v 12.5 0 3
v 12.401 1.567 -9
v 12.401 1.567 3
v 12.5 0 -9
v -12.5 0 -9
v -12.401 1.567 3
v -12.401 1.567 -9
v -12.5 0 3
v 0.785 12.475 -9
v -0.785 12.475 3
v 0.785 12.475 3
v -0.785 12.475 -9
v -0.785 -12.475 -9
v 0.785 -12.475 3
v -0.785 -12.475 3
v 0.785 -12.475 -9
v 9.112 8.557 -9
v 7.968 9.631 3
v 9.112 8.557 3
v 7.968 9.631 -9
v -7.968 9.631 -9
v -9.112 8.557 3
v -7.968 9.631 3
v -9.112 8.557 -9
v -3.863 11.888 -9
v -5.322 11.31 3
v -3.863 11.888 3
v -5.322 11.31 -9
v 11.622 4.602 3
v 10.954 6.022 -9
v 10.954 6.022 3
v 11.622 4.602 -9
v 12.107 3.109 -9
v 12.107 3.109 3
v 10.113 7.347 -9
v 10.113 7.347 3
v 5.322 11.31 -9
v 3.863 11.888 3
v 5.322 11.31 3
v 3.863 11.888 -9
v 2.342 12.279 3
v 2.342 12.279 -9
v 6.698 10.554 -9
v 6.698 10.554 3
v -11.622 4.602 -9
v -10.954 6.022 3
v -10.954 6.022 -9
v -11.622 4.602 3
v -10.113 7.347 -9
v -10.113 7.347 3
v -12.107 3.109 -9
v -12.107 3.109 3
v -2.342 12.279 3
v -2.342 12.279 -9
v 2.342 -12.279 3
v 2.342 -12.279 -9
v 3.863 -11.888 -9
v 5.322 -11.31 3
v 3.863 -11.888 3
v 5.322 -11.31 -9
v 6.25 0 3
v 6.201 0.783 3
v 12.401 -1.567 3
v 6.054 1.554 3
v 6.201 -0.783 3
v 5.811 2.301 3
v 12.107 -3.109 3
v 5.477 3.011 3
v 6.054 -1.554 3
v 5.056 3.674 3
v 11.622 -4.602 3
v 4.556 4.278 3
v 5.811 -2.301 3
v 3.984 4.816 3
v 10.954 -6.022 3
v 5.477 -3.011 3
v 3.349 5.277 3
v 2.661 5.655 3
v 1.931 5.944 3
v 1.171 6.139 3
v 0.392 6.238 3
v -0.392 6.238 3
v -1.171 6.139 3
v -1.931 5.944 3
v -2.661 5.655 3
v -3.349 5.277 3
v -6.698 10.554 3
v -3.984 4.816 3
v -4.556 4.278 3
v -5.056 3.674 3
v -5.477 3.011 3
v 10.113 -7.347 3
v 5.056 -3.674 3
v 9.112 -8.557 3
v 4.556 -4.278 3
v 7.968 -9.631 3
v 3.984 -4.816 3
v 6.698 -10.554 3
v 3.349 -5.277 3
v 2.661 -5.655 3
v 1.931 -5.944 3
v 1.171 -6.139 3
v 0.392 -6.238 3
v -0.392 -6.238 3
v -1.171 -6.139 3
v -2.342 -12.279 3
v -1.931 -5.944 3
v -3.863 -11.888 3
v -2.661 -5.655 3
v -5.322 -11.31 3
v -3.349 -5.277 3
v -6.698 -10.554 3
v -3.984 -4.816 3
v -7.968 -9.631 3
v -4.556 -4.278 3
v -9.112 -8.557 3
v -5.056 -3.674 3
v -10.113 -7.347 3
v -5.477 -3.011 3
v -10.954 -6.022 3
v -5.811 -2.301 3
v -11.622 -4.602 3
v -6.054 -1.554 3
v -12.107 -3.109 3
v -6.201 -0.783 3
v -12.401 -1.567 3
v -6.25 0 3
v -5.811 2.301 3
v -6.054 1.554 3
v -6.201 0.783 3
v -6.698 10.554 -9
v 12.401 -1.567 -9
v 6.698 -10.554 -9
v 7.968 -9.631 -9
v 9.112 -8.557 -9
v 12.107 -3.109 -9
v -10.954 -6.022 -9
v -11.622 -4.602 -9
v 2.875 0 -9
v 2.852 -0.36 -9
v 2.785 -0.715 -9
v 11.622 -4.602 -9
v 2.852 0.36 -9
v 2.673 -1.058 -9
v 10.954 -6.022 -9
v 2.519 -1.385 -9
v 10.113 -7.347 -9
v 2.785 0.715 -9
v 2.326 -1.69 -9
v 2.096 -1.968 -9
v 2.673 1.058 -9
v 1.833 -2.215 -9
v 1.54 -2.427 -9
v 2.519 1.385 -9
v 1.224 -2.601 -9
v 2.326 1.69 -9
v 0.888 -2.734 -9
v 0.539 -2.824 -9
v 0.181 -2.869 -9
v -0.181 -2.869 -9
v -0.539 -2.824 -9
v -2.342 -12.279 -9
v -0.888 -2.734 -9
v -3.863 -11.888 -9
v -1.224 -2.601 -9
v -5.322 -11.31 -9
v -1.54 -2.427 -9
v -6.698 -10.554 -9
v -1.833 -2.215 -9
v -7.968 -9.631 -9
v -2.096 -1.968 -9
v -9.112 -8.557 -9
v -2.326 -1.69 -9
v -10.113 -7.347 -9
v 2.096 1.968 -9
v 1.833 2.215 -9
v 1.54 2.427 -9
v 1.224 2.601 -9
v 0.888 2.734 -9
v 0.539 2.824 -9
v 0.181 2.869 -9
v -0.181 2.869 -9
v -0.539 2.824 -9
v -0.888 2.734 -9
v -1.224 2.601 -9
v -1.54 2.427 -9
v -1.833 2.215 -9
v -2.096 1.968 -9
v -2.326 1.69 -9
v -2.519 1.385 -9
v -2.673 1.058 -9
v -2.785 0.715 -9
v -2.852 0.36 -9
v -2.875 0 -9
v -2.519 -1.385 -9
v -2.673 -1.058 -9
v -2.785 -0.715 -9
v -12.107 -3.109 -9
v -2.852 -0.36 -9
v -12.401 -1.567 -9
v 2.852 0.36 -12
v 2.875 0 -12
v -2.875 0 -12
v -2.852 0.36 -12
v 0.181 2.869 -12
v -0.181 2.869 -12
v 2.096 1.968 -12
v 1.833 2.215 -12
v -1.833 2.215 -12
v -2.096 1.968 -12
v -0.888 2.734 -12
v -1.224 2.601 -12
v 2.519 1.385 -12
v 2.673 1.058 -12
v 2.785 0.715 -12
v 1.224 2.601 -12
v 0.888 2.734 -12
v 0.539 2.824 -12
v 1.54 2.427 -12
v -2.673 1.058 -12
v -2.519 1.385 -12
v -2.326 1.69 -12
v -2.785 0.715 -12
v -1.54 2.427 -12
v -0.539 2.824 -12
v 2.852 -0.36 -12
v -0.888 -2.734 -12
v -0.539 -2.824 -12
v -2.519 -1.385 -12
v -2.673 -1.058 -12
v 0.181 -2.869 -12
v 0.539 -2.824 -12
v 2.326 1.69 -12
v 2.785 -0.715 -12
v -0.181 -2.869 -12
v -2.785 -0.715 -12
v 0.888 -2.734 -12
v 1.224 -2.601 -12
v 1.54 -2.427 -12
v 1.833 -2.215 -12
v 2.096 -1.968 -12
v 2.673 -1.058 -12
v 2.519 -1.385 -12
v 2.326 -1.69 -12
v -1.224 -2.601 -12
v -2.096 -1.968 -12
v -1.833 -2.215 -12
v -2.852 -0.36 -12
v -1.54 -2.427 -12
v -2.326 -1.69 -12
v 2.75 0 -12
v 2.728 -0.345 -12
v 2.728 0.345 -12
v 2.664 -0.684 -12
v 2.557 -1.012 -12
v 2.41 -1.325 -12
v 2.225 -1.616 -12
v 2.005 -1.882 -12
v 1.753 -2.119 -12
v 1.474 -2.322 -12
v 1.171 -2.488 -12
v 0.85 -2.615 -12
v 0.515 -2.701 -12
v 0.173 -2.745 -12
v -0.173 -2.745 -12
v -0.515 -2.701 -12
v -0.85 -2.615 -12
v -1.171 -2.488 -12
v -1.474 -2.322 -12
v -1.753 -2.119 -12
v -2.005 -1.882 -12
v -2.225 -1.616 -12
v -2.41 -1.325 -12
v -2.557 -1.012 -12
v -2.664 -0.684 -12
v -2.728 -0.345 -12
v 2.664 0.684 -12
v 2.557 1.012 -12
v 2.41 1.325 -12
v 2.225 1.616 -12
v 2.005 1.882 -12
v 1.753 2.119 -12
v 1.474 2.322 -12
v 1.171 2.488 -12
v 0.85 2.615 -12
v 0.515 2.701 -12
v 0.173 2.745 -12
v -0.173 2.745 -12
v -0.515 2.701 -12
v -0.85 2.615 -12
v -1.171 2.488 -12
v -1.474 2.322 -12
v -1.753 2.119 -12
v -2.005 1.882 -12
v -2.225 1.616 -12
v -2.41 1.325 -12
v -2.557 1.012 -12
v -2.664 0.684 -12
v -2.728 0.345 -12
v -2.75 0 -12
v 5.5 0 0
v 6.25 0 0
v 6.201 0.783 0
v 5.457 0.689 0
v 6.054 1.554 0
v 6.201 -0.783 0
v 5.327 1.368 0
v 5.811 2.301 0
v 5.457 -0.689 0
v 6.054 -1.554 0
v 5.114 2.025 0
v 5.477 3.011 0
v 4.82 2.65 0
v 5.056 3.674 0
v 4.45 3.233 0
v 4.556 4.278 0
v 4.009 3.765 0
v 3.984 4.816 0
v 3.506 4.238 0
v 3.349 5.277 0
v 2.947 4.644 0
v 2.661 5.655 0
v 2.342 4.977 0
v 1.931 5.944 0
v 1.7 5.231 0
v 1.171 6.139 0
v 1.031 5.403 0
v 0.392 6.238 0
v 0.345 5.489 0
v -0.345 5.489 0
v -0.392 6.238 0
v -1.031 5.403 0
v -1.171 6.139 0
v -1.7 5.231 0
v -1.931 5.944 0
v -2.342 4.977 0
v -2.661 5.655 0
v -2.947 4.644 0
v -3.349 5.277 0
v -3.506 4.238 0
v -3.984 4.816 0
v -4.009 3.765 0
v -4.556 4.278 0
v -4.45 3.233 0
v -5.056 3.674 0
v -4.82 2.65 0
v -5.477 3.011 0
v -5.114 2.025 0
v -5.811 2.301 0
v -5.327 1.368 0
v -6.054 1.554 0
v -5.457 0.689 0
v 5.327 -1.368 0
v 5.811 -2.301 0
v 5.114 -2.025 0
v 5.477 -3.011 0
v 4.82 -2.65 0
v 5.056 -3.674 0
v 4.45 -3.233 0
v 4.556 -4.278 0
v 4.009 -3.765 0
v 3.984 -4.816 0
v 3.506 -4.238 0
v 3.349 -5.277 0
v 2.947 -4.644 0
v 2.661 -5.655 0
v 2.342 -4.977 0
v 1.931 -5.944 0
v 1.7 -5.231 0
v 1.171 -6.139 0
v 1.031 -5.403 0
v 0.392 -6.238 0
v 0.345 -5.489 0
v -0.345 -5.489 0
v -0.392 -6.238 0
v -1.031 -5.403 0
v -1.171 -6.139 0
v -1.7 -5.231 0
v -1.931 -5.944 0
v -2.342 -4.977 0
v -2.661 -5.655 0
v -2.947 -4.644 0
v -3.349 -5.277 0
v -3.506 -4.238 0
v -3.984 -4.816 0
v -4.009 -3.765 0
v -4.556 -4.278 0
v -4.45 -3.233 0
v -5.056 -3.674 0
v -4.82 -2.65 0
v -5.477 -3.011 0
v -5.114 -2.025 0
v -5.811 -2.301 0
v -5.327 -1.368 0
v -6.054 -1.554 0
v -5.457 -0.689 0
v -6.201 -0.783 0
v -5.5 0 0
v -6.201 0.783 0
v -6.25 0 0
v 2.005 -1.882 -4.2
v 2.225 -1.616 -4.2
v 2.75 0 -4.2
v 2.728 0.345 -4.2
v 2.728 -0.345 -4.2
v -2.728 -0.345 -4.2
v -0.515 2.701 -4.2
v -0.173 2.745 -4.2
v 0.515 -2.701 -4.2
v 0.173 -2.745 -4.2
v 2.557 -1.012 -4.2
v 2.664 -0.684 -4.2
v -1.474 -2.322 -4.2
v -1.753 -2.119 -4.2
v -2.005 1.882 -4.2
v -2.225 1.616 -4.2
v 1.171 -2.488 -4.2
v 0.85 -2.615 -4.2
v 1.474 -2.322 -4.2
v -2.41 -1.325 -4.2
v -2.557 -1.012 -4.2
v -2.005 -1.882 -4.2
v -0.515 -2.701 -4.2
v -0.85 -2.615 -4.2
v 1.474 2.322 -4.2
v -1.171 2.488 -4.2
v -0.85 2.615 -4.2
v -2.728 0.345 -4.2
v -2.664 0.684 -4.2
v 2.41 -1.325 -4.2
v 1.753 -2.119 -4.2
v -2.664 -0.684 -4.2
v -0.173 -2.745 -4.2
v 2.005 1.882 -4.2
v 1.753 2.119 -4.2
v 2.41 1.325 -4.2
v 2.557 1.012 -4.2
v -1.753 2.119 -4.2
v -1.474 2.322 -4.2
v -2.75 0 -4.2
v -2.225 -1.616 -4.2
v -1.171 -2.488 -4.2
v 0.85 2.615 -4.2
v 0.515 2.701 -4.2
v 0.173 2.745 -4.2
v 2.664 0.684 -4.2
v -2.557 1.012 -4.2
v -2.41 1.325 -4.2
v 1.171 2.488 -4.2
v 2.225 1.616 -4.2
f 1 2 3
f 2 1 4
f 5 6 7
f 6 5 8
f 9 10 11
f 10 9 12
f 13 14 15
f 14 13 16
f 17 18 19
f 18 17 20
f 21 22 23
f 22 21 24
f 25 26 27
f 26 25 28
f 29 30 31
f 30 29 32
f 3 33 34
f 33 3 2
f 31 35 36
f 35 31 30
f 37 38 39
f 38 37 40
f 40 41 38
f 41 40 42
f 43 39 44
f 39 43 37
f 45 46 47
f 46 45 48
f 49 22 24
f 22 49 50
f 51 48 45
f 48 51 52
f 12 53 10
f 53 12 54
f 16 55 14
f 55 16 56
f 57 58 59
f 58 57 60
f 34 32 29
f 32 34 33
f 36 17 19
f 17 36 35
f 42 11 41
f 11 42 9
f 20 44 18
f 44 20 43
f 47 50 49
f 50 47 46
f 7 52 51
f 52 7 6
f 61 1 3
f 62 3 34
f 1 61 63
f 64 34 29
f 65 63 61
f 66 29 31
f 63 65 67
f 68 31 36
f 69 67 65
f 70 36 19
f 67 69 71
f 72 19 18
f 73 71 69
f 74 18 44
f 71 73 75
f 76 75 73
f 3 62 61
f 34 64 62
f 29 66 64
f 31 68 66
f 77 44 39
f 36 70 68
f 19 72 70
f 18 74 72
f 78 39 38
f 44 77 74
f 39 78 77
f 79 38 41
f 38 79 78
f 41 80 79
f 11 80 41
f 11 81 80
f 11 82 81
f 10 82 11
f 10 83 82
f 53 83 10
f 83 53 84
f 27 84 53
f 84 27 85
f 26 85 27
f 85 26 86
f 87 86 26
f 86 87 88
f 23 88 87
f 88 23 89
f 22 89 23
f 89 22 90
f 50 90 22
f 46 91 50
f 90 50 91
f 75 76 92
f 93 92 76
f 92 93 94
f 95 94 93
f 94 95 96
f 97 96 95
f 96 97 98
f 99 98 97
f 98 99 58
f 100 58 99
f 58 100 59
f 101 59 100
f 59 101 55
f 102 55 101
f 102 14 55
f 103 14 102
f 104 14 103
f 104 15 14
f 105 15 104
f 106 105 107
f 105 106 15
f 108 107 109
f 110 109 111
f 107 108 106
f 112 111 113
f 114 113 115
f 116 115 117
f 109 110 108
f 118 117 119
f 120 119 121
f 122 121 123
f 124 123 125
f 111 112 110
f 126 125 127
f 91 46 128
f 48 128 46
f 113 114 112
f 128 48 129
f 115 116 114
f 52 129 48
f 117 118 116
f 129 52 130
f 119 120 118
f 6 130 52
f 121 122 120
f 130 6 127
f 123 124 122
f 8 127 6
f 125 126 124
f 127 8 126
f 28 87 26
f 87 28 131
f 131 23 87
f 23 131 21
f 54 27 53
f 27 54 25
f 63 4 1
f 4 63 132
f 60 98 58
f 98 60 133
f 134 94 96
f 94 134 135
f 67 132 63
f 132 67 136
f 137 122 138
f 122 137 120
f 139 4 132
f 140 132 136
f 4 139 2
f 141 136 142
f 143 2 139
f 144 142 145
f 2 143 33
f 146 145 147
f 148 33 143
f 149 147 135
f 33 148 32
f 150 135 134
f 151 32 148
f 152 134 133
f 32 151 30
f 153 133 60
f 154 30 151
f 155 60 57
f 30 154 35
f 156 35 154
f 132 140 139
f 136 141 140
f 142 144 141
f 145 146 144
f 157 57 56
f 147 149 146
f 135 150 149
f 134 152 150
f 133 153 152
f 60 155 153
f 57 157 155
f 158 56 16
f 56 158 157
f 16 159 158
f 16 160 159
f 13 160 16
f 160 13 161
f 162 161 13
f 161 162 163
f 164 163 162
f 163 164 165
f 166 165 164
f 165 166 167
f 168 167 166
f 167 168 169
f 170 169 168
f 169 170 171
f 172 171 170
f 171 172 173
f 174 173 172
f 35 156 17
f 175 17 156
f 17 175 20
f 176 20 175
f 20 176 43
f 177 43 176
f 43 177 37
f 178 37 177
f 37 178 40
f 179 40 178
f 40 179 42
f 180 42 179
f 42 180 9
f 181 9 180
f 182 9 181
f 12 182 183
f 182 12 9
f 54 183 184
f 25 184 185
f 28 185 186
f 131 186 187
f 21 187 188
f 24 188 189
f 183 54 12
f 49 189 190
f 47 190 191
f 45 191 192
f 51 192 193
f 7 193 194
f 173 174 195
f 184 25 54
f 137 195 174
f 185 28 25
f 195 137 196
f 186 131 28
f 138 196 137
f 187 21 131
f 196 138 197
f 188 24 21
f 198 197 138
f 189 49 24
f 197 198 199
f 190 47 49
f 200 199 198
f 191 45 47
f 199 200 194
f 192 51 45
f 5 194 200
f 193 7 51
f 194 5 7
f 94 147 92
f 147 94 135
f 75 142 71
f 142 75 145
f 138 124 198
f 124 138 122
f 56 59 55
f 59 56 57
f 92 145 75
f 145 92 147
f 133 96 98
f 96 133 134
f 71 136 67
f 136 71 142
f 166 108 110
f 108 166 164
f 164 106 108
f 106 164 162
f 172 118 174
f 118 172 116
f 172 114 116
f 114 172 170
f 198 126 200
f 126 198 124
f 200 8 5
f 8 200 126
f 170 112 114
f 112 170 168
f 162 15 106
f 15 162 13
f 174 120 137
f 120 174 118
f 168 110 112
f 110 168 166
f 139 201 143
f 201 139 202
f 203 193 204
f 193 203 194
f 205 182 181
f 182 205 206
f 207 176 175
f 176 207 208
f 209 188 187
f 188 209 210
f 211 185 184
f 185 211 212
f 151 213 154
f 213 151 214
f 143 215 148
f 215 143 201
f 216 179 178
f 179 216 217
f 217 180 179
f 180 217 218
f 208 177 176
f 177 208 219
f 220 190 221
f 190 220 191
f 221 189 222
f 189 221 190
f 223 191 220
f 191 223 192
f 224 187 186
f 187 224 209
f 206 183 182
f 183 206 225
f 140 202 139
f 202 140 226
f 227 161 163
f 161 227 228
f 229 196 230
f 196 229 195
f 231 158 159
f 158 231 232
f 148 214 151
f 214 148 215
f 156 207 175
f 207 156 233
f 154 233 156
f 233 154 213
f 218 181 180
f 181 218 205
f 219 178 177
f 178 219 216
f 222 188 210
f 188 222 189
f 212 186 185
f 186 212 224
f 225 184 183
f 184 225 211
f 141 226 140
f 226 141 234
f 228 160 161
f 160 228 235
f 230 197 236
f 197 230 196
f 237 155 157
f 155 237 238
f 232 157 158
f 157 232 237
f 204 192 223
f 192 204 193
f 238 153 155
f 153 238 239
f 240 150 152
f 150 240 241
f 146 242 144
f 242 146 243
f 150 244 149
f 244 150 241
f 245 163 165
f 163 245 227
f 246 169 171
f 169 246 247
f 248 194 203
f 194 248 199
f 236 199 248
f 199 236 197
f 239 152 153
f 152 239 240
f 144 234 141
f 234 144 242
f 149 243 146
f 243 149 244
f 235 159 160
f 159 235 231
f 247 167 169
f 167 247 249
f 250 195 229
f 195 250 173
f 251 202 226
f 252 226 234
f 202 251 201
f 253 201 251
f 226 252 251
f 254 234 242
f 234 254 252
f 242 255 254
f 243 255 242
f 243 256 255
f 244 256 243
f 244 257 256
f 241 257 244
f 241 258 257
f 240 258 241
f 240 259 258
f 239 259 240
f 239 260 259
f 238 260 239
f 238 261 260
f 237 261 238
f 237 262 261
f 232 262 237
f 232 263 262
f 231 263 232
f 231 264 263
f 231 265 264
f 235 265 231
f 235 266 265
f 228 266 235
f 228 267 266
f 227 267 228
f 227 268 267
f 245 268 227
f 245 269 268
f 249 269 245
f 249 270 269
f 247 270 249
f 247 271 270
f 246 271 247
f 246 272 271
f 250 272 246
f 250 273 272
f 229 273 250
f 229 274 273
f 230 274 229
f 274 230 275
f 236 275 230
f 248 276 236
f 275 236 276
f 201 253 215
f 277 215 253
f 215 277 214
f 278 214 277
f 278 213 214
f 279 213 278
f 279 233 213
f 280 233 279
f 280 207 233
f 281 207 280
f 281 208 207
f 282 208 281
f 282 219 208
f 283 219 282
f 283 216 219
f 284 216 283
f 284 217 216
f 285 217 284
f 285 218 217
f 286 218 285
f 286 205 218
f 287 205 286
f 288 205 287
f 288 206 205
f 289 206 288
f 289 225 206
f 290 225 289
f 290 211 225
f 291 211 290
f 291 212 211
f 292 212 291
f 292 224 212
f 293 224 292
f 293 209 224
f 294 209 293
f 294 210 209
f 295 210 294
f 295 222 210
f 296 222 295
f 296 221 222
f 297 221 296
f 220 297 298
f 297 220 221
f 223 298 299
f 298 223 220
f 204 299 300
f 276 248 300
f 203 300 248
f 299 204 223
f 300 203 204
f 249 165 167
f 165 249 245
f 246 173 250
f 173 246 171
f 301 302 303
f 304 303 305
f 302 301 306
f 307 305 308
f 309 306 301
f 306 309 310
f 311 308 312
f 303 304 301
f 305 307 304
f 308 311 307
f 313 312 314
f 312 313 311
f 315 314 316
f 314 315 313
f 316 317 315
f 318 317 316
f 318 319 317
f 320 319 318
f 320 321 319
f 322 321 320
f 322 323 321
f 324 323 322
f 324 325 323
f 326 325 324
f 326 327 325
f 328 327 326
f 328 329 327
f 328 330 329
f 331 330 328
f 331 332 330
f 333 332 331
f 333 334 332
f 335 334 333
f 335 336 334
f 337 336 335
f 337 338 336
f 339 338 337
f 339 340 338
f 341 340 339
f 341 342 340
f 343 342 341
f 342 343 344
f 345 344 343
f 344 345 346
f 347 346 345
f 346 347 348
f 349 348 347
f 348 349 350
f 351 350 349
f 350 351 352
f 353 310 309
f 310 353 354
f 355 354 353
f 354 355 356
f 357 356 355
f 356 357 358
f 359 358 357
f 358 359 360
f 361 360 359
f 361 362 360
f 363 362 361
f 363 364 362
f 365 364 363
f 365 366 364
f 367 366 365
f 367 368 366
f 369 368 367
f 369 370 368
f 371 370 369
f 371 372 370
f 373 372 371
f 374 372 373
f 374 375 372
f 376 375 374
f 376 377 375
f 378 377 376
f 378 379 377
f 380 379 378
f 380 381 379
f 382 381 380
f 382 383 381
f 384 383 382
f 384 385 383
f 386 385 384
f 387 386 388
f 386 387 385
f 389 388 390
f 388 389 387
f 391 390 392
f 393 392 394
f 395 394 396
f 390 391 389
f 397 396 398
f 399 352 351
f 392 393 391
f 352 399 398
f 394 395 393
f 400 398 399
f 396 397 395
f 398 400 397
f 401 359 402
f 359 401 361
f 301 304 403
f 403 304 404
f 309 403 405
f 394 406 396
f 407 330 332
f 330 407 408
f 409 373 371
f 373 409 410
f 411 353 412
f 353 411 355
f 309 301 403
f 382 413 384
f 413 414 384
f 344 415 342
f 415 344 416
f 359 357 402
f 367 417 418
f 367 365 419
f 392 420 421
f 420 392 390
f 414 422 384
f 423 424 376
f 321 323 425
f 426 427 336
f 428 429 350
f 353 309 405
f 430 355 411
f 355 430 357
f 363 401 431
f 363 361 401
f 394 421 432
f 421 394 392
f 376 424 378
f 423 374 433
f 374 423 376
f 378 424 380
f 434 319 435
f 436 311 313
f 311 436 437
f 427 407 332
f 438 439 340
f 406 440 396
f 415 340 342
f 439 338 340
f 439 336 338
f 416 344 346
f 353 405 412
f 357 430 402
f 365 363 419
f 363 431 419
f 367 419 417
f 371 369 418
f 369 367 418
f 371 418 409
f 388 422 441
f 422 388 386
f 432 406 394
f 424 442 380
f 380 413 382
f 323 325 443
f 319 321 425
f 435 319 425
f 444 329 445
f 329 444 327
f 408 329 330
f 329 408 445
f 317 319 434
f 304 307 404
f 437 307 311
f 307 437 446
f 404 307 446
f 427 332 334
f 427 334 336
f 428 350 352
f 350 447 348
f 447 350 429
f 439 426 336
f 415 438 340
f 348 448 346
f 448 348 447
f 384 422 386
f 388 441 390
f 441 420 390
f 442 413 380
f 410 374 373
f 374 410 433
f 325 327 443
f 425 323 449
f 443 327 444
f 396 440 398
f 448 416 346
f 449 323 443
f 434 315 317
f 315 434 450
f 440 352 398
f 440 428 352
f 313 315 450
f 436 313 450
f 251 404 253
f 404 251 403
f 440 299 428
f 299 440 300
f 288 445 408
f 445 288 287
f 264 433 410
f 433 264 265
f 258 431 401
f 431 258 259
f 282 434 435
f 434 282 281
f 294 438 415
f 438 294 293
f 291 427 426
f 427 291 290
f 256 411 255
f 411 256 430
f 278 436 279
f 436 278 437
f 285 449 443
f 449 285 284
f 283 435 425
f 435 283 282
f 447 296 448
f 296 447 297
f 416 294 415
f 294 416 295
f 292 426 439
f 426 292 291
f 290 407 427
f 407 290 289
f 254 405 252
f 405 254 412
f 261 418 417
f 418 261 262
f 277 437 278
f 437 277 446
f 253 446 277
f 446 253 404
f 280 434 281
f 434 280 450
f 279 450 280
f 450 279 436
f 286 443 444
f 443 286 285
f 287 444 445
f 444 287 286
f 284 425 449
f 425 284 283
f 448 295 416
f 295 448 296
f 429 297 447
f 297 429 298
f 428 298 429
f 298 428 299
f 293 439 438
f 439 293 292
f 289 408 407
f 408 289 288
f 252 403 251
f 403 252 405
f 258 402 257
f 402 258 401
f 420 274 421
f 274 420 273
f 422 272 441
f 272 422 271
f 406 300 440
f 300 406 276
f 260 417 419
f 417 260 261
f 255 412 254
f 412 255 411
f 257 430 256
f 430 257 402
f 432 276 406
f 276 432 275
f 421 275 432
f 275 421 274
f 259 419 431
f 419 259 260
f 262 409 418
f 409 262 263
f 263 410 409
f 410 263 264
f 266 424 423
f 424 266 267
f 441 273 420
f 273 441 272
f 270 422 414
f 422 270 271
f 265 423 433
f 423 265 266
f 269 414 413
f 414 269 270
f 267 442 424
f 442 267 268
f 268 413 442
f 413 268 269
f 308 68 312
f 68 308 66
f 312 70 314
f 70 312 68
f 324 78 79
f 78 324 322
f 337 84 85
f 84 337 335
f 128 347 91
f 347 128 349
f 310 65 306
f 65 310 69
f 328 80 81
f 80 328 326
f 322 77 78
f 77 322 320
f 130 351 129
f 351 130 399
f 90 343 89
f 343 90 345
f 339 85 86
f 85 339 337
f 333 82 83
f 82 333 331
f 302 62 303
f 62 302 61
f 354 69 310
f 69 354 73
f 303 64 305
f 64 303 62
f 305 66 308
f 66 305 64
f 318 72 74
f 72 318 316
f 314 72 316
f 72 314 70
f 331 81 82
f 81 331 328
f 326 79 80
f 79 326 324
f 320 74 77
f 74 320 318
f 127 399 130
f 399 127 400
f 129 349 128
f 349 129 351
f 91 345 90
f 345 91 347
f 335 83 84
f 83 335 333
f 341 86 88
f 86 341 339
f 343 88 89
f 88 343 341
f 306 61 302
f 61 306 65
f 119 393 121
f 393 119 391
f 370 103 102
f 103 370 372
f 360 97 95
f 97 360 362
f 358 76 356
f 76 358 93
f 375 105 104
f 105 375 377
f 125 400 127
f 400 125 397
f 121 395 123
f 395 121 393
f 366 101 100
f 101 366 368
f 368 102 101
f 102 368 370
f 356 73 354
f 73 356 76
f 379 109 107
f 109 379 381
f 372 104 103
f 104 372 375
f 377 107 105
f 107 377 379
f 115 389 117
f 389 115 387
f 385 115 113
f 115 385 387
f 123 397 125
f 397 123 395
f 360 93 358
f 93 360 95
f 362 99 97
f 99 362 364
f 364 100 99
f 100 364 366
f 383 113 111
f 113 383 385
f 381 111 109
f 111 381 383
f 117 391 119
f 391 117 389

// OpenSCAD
$fn = 50;


difference() {
	union() {
		translate(v = [0, 0, -9.0000000000]) {
			cylinder(h = 12, r = 12.5000000000);
		}
		#translate(v = [0, 0, -12.0000000000]) {
			cylinder(h = 12, r = 2.8750000000);
		}
	}
	union() {
		translate(v = [0, 0, 0]) {
			rotate(a = [0, 0, 0]) {
				difference() {
					union() {
						translate(v = [0, 0, -12.0000000000]) {
							cylinder(h = 12, r = 2.2500000000);
						}
						translate(v = [0, 0, -4.2000000000]) {
							cylinder(h = 4.2000000000, r1 = 2.7500000000, r2 = 5.5000000000);
						}
						translate(v = [0, 0, -12.0000000000]) {
							cylinder(h = 12, r = 2.7500000000);
						}
						translate(v = [0, 0, -12.0000000000]) {
							cylinder(h = 12, r = 2.2500000000);
						}
					}
					union();
				}
			}
		}
		#cylinder(h = 3, r = 6.2500000000);
	}
}
